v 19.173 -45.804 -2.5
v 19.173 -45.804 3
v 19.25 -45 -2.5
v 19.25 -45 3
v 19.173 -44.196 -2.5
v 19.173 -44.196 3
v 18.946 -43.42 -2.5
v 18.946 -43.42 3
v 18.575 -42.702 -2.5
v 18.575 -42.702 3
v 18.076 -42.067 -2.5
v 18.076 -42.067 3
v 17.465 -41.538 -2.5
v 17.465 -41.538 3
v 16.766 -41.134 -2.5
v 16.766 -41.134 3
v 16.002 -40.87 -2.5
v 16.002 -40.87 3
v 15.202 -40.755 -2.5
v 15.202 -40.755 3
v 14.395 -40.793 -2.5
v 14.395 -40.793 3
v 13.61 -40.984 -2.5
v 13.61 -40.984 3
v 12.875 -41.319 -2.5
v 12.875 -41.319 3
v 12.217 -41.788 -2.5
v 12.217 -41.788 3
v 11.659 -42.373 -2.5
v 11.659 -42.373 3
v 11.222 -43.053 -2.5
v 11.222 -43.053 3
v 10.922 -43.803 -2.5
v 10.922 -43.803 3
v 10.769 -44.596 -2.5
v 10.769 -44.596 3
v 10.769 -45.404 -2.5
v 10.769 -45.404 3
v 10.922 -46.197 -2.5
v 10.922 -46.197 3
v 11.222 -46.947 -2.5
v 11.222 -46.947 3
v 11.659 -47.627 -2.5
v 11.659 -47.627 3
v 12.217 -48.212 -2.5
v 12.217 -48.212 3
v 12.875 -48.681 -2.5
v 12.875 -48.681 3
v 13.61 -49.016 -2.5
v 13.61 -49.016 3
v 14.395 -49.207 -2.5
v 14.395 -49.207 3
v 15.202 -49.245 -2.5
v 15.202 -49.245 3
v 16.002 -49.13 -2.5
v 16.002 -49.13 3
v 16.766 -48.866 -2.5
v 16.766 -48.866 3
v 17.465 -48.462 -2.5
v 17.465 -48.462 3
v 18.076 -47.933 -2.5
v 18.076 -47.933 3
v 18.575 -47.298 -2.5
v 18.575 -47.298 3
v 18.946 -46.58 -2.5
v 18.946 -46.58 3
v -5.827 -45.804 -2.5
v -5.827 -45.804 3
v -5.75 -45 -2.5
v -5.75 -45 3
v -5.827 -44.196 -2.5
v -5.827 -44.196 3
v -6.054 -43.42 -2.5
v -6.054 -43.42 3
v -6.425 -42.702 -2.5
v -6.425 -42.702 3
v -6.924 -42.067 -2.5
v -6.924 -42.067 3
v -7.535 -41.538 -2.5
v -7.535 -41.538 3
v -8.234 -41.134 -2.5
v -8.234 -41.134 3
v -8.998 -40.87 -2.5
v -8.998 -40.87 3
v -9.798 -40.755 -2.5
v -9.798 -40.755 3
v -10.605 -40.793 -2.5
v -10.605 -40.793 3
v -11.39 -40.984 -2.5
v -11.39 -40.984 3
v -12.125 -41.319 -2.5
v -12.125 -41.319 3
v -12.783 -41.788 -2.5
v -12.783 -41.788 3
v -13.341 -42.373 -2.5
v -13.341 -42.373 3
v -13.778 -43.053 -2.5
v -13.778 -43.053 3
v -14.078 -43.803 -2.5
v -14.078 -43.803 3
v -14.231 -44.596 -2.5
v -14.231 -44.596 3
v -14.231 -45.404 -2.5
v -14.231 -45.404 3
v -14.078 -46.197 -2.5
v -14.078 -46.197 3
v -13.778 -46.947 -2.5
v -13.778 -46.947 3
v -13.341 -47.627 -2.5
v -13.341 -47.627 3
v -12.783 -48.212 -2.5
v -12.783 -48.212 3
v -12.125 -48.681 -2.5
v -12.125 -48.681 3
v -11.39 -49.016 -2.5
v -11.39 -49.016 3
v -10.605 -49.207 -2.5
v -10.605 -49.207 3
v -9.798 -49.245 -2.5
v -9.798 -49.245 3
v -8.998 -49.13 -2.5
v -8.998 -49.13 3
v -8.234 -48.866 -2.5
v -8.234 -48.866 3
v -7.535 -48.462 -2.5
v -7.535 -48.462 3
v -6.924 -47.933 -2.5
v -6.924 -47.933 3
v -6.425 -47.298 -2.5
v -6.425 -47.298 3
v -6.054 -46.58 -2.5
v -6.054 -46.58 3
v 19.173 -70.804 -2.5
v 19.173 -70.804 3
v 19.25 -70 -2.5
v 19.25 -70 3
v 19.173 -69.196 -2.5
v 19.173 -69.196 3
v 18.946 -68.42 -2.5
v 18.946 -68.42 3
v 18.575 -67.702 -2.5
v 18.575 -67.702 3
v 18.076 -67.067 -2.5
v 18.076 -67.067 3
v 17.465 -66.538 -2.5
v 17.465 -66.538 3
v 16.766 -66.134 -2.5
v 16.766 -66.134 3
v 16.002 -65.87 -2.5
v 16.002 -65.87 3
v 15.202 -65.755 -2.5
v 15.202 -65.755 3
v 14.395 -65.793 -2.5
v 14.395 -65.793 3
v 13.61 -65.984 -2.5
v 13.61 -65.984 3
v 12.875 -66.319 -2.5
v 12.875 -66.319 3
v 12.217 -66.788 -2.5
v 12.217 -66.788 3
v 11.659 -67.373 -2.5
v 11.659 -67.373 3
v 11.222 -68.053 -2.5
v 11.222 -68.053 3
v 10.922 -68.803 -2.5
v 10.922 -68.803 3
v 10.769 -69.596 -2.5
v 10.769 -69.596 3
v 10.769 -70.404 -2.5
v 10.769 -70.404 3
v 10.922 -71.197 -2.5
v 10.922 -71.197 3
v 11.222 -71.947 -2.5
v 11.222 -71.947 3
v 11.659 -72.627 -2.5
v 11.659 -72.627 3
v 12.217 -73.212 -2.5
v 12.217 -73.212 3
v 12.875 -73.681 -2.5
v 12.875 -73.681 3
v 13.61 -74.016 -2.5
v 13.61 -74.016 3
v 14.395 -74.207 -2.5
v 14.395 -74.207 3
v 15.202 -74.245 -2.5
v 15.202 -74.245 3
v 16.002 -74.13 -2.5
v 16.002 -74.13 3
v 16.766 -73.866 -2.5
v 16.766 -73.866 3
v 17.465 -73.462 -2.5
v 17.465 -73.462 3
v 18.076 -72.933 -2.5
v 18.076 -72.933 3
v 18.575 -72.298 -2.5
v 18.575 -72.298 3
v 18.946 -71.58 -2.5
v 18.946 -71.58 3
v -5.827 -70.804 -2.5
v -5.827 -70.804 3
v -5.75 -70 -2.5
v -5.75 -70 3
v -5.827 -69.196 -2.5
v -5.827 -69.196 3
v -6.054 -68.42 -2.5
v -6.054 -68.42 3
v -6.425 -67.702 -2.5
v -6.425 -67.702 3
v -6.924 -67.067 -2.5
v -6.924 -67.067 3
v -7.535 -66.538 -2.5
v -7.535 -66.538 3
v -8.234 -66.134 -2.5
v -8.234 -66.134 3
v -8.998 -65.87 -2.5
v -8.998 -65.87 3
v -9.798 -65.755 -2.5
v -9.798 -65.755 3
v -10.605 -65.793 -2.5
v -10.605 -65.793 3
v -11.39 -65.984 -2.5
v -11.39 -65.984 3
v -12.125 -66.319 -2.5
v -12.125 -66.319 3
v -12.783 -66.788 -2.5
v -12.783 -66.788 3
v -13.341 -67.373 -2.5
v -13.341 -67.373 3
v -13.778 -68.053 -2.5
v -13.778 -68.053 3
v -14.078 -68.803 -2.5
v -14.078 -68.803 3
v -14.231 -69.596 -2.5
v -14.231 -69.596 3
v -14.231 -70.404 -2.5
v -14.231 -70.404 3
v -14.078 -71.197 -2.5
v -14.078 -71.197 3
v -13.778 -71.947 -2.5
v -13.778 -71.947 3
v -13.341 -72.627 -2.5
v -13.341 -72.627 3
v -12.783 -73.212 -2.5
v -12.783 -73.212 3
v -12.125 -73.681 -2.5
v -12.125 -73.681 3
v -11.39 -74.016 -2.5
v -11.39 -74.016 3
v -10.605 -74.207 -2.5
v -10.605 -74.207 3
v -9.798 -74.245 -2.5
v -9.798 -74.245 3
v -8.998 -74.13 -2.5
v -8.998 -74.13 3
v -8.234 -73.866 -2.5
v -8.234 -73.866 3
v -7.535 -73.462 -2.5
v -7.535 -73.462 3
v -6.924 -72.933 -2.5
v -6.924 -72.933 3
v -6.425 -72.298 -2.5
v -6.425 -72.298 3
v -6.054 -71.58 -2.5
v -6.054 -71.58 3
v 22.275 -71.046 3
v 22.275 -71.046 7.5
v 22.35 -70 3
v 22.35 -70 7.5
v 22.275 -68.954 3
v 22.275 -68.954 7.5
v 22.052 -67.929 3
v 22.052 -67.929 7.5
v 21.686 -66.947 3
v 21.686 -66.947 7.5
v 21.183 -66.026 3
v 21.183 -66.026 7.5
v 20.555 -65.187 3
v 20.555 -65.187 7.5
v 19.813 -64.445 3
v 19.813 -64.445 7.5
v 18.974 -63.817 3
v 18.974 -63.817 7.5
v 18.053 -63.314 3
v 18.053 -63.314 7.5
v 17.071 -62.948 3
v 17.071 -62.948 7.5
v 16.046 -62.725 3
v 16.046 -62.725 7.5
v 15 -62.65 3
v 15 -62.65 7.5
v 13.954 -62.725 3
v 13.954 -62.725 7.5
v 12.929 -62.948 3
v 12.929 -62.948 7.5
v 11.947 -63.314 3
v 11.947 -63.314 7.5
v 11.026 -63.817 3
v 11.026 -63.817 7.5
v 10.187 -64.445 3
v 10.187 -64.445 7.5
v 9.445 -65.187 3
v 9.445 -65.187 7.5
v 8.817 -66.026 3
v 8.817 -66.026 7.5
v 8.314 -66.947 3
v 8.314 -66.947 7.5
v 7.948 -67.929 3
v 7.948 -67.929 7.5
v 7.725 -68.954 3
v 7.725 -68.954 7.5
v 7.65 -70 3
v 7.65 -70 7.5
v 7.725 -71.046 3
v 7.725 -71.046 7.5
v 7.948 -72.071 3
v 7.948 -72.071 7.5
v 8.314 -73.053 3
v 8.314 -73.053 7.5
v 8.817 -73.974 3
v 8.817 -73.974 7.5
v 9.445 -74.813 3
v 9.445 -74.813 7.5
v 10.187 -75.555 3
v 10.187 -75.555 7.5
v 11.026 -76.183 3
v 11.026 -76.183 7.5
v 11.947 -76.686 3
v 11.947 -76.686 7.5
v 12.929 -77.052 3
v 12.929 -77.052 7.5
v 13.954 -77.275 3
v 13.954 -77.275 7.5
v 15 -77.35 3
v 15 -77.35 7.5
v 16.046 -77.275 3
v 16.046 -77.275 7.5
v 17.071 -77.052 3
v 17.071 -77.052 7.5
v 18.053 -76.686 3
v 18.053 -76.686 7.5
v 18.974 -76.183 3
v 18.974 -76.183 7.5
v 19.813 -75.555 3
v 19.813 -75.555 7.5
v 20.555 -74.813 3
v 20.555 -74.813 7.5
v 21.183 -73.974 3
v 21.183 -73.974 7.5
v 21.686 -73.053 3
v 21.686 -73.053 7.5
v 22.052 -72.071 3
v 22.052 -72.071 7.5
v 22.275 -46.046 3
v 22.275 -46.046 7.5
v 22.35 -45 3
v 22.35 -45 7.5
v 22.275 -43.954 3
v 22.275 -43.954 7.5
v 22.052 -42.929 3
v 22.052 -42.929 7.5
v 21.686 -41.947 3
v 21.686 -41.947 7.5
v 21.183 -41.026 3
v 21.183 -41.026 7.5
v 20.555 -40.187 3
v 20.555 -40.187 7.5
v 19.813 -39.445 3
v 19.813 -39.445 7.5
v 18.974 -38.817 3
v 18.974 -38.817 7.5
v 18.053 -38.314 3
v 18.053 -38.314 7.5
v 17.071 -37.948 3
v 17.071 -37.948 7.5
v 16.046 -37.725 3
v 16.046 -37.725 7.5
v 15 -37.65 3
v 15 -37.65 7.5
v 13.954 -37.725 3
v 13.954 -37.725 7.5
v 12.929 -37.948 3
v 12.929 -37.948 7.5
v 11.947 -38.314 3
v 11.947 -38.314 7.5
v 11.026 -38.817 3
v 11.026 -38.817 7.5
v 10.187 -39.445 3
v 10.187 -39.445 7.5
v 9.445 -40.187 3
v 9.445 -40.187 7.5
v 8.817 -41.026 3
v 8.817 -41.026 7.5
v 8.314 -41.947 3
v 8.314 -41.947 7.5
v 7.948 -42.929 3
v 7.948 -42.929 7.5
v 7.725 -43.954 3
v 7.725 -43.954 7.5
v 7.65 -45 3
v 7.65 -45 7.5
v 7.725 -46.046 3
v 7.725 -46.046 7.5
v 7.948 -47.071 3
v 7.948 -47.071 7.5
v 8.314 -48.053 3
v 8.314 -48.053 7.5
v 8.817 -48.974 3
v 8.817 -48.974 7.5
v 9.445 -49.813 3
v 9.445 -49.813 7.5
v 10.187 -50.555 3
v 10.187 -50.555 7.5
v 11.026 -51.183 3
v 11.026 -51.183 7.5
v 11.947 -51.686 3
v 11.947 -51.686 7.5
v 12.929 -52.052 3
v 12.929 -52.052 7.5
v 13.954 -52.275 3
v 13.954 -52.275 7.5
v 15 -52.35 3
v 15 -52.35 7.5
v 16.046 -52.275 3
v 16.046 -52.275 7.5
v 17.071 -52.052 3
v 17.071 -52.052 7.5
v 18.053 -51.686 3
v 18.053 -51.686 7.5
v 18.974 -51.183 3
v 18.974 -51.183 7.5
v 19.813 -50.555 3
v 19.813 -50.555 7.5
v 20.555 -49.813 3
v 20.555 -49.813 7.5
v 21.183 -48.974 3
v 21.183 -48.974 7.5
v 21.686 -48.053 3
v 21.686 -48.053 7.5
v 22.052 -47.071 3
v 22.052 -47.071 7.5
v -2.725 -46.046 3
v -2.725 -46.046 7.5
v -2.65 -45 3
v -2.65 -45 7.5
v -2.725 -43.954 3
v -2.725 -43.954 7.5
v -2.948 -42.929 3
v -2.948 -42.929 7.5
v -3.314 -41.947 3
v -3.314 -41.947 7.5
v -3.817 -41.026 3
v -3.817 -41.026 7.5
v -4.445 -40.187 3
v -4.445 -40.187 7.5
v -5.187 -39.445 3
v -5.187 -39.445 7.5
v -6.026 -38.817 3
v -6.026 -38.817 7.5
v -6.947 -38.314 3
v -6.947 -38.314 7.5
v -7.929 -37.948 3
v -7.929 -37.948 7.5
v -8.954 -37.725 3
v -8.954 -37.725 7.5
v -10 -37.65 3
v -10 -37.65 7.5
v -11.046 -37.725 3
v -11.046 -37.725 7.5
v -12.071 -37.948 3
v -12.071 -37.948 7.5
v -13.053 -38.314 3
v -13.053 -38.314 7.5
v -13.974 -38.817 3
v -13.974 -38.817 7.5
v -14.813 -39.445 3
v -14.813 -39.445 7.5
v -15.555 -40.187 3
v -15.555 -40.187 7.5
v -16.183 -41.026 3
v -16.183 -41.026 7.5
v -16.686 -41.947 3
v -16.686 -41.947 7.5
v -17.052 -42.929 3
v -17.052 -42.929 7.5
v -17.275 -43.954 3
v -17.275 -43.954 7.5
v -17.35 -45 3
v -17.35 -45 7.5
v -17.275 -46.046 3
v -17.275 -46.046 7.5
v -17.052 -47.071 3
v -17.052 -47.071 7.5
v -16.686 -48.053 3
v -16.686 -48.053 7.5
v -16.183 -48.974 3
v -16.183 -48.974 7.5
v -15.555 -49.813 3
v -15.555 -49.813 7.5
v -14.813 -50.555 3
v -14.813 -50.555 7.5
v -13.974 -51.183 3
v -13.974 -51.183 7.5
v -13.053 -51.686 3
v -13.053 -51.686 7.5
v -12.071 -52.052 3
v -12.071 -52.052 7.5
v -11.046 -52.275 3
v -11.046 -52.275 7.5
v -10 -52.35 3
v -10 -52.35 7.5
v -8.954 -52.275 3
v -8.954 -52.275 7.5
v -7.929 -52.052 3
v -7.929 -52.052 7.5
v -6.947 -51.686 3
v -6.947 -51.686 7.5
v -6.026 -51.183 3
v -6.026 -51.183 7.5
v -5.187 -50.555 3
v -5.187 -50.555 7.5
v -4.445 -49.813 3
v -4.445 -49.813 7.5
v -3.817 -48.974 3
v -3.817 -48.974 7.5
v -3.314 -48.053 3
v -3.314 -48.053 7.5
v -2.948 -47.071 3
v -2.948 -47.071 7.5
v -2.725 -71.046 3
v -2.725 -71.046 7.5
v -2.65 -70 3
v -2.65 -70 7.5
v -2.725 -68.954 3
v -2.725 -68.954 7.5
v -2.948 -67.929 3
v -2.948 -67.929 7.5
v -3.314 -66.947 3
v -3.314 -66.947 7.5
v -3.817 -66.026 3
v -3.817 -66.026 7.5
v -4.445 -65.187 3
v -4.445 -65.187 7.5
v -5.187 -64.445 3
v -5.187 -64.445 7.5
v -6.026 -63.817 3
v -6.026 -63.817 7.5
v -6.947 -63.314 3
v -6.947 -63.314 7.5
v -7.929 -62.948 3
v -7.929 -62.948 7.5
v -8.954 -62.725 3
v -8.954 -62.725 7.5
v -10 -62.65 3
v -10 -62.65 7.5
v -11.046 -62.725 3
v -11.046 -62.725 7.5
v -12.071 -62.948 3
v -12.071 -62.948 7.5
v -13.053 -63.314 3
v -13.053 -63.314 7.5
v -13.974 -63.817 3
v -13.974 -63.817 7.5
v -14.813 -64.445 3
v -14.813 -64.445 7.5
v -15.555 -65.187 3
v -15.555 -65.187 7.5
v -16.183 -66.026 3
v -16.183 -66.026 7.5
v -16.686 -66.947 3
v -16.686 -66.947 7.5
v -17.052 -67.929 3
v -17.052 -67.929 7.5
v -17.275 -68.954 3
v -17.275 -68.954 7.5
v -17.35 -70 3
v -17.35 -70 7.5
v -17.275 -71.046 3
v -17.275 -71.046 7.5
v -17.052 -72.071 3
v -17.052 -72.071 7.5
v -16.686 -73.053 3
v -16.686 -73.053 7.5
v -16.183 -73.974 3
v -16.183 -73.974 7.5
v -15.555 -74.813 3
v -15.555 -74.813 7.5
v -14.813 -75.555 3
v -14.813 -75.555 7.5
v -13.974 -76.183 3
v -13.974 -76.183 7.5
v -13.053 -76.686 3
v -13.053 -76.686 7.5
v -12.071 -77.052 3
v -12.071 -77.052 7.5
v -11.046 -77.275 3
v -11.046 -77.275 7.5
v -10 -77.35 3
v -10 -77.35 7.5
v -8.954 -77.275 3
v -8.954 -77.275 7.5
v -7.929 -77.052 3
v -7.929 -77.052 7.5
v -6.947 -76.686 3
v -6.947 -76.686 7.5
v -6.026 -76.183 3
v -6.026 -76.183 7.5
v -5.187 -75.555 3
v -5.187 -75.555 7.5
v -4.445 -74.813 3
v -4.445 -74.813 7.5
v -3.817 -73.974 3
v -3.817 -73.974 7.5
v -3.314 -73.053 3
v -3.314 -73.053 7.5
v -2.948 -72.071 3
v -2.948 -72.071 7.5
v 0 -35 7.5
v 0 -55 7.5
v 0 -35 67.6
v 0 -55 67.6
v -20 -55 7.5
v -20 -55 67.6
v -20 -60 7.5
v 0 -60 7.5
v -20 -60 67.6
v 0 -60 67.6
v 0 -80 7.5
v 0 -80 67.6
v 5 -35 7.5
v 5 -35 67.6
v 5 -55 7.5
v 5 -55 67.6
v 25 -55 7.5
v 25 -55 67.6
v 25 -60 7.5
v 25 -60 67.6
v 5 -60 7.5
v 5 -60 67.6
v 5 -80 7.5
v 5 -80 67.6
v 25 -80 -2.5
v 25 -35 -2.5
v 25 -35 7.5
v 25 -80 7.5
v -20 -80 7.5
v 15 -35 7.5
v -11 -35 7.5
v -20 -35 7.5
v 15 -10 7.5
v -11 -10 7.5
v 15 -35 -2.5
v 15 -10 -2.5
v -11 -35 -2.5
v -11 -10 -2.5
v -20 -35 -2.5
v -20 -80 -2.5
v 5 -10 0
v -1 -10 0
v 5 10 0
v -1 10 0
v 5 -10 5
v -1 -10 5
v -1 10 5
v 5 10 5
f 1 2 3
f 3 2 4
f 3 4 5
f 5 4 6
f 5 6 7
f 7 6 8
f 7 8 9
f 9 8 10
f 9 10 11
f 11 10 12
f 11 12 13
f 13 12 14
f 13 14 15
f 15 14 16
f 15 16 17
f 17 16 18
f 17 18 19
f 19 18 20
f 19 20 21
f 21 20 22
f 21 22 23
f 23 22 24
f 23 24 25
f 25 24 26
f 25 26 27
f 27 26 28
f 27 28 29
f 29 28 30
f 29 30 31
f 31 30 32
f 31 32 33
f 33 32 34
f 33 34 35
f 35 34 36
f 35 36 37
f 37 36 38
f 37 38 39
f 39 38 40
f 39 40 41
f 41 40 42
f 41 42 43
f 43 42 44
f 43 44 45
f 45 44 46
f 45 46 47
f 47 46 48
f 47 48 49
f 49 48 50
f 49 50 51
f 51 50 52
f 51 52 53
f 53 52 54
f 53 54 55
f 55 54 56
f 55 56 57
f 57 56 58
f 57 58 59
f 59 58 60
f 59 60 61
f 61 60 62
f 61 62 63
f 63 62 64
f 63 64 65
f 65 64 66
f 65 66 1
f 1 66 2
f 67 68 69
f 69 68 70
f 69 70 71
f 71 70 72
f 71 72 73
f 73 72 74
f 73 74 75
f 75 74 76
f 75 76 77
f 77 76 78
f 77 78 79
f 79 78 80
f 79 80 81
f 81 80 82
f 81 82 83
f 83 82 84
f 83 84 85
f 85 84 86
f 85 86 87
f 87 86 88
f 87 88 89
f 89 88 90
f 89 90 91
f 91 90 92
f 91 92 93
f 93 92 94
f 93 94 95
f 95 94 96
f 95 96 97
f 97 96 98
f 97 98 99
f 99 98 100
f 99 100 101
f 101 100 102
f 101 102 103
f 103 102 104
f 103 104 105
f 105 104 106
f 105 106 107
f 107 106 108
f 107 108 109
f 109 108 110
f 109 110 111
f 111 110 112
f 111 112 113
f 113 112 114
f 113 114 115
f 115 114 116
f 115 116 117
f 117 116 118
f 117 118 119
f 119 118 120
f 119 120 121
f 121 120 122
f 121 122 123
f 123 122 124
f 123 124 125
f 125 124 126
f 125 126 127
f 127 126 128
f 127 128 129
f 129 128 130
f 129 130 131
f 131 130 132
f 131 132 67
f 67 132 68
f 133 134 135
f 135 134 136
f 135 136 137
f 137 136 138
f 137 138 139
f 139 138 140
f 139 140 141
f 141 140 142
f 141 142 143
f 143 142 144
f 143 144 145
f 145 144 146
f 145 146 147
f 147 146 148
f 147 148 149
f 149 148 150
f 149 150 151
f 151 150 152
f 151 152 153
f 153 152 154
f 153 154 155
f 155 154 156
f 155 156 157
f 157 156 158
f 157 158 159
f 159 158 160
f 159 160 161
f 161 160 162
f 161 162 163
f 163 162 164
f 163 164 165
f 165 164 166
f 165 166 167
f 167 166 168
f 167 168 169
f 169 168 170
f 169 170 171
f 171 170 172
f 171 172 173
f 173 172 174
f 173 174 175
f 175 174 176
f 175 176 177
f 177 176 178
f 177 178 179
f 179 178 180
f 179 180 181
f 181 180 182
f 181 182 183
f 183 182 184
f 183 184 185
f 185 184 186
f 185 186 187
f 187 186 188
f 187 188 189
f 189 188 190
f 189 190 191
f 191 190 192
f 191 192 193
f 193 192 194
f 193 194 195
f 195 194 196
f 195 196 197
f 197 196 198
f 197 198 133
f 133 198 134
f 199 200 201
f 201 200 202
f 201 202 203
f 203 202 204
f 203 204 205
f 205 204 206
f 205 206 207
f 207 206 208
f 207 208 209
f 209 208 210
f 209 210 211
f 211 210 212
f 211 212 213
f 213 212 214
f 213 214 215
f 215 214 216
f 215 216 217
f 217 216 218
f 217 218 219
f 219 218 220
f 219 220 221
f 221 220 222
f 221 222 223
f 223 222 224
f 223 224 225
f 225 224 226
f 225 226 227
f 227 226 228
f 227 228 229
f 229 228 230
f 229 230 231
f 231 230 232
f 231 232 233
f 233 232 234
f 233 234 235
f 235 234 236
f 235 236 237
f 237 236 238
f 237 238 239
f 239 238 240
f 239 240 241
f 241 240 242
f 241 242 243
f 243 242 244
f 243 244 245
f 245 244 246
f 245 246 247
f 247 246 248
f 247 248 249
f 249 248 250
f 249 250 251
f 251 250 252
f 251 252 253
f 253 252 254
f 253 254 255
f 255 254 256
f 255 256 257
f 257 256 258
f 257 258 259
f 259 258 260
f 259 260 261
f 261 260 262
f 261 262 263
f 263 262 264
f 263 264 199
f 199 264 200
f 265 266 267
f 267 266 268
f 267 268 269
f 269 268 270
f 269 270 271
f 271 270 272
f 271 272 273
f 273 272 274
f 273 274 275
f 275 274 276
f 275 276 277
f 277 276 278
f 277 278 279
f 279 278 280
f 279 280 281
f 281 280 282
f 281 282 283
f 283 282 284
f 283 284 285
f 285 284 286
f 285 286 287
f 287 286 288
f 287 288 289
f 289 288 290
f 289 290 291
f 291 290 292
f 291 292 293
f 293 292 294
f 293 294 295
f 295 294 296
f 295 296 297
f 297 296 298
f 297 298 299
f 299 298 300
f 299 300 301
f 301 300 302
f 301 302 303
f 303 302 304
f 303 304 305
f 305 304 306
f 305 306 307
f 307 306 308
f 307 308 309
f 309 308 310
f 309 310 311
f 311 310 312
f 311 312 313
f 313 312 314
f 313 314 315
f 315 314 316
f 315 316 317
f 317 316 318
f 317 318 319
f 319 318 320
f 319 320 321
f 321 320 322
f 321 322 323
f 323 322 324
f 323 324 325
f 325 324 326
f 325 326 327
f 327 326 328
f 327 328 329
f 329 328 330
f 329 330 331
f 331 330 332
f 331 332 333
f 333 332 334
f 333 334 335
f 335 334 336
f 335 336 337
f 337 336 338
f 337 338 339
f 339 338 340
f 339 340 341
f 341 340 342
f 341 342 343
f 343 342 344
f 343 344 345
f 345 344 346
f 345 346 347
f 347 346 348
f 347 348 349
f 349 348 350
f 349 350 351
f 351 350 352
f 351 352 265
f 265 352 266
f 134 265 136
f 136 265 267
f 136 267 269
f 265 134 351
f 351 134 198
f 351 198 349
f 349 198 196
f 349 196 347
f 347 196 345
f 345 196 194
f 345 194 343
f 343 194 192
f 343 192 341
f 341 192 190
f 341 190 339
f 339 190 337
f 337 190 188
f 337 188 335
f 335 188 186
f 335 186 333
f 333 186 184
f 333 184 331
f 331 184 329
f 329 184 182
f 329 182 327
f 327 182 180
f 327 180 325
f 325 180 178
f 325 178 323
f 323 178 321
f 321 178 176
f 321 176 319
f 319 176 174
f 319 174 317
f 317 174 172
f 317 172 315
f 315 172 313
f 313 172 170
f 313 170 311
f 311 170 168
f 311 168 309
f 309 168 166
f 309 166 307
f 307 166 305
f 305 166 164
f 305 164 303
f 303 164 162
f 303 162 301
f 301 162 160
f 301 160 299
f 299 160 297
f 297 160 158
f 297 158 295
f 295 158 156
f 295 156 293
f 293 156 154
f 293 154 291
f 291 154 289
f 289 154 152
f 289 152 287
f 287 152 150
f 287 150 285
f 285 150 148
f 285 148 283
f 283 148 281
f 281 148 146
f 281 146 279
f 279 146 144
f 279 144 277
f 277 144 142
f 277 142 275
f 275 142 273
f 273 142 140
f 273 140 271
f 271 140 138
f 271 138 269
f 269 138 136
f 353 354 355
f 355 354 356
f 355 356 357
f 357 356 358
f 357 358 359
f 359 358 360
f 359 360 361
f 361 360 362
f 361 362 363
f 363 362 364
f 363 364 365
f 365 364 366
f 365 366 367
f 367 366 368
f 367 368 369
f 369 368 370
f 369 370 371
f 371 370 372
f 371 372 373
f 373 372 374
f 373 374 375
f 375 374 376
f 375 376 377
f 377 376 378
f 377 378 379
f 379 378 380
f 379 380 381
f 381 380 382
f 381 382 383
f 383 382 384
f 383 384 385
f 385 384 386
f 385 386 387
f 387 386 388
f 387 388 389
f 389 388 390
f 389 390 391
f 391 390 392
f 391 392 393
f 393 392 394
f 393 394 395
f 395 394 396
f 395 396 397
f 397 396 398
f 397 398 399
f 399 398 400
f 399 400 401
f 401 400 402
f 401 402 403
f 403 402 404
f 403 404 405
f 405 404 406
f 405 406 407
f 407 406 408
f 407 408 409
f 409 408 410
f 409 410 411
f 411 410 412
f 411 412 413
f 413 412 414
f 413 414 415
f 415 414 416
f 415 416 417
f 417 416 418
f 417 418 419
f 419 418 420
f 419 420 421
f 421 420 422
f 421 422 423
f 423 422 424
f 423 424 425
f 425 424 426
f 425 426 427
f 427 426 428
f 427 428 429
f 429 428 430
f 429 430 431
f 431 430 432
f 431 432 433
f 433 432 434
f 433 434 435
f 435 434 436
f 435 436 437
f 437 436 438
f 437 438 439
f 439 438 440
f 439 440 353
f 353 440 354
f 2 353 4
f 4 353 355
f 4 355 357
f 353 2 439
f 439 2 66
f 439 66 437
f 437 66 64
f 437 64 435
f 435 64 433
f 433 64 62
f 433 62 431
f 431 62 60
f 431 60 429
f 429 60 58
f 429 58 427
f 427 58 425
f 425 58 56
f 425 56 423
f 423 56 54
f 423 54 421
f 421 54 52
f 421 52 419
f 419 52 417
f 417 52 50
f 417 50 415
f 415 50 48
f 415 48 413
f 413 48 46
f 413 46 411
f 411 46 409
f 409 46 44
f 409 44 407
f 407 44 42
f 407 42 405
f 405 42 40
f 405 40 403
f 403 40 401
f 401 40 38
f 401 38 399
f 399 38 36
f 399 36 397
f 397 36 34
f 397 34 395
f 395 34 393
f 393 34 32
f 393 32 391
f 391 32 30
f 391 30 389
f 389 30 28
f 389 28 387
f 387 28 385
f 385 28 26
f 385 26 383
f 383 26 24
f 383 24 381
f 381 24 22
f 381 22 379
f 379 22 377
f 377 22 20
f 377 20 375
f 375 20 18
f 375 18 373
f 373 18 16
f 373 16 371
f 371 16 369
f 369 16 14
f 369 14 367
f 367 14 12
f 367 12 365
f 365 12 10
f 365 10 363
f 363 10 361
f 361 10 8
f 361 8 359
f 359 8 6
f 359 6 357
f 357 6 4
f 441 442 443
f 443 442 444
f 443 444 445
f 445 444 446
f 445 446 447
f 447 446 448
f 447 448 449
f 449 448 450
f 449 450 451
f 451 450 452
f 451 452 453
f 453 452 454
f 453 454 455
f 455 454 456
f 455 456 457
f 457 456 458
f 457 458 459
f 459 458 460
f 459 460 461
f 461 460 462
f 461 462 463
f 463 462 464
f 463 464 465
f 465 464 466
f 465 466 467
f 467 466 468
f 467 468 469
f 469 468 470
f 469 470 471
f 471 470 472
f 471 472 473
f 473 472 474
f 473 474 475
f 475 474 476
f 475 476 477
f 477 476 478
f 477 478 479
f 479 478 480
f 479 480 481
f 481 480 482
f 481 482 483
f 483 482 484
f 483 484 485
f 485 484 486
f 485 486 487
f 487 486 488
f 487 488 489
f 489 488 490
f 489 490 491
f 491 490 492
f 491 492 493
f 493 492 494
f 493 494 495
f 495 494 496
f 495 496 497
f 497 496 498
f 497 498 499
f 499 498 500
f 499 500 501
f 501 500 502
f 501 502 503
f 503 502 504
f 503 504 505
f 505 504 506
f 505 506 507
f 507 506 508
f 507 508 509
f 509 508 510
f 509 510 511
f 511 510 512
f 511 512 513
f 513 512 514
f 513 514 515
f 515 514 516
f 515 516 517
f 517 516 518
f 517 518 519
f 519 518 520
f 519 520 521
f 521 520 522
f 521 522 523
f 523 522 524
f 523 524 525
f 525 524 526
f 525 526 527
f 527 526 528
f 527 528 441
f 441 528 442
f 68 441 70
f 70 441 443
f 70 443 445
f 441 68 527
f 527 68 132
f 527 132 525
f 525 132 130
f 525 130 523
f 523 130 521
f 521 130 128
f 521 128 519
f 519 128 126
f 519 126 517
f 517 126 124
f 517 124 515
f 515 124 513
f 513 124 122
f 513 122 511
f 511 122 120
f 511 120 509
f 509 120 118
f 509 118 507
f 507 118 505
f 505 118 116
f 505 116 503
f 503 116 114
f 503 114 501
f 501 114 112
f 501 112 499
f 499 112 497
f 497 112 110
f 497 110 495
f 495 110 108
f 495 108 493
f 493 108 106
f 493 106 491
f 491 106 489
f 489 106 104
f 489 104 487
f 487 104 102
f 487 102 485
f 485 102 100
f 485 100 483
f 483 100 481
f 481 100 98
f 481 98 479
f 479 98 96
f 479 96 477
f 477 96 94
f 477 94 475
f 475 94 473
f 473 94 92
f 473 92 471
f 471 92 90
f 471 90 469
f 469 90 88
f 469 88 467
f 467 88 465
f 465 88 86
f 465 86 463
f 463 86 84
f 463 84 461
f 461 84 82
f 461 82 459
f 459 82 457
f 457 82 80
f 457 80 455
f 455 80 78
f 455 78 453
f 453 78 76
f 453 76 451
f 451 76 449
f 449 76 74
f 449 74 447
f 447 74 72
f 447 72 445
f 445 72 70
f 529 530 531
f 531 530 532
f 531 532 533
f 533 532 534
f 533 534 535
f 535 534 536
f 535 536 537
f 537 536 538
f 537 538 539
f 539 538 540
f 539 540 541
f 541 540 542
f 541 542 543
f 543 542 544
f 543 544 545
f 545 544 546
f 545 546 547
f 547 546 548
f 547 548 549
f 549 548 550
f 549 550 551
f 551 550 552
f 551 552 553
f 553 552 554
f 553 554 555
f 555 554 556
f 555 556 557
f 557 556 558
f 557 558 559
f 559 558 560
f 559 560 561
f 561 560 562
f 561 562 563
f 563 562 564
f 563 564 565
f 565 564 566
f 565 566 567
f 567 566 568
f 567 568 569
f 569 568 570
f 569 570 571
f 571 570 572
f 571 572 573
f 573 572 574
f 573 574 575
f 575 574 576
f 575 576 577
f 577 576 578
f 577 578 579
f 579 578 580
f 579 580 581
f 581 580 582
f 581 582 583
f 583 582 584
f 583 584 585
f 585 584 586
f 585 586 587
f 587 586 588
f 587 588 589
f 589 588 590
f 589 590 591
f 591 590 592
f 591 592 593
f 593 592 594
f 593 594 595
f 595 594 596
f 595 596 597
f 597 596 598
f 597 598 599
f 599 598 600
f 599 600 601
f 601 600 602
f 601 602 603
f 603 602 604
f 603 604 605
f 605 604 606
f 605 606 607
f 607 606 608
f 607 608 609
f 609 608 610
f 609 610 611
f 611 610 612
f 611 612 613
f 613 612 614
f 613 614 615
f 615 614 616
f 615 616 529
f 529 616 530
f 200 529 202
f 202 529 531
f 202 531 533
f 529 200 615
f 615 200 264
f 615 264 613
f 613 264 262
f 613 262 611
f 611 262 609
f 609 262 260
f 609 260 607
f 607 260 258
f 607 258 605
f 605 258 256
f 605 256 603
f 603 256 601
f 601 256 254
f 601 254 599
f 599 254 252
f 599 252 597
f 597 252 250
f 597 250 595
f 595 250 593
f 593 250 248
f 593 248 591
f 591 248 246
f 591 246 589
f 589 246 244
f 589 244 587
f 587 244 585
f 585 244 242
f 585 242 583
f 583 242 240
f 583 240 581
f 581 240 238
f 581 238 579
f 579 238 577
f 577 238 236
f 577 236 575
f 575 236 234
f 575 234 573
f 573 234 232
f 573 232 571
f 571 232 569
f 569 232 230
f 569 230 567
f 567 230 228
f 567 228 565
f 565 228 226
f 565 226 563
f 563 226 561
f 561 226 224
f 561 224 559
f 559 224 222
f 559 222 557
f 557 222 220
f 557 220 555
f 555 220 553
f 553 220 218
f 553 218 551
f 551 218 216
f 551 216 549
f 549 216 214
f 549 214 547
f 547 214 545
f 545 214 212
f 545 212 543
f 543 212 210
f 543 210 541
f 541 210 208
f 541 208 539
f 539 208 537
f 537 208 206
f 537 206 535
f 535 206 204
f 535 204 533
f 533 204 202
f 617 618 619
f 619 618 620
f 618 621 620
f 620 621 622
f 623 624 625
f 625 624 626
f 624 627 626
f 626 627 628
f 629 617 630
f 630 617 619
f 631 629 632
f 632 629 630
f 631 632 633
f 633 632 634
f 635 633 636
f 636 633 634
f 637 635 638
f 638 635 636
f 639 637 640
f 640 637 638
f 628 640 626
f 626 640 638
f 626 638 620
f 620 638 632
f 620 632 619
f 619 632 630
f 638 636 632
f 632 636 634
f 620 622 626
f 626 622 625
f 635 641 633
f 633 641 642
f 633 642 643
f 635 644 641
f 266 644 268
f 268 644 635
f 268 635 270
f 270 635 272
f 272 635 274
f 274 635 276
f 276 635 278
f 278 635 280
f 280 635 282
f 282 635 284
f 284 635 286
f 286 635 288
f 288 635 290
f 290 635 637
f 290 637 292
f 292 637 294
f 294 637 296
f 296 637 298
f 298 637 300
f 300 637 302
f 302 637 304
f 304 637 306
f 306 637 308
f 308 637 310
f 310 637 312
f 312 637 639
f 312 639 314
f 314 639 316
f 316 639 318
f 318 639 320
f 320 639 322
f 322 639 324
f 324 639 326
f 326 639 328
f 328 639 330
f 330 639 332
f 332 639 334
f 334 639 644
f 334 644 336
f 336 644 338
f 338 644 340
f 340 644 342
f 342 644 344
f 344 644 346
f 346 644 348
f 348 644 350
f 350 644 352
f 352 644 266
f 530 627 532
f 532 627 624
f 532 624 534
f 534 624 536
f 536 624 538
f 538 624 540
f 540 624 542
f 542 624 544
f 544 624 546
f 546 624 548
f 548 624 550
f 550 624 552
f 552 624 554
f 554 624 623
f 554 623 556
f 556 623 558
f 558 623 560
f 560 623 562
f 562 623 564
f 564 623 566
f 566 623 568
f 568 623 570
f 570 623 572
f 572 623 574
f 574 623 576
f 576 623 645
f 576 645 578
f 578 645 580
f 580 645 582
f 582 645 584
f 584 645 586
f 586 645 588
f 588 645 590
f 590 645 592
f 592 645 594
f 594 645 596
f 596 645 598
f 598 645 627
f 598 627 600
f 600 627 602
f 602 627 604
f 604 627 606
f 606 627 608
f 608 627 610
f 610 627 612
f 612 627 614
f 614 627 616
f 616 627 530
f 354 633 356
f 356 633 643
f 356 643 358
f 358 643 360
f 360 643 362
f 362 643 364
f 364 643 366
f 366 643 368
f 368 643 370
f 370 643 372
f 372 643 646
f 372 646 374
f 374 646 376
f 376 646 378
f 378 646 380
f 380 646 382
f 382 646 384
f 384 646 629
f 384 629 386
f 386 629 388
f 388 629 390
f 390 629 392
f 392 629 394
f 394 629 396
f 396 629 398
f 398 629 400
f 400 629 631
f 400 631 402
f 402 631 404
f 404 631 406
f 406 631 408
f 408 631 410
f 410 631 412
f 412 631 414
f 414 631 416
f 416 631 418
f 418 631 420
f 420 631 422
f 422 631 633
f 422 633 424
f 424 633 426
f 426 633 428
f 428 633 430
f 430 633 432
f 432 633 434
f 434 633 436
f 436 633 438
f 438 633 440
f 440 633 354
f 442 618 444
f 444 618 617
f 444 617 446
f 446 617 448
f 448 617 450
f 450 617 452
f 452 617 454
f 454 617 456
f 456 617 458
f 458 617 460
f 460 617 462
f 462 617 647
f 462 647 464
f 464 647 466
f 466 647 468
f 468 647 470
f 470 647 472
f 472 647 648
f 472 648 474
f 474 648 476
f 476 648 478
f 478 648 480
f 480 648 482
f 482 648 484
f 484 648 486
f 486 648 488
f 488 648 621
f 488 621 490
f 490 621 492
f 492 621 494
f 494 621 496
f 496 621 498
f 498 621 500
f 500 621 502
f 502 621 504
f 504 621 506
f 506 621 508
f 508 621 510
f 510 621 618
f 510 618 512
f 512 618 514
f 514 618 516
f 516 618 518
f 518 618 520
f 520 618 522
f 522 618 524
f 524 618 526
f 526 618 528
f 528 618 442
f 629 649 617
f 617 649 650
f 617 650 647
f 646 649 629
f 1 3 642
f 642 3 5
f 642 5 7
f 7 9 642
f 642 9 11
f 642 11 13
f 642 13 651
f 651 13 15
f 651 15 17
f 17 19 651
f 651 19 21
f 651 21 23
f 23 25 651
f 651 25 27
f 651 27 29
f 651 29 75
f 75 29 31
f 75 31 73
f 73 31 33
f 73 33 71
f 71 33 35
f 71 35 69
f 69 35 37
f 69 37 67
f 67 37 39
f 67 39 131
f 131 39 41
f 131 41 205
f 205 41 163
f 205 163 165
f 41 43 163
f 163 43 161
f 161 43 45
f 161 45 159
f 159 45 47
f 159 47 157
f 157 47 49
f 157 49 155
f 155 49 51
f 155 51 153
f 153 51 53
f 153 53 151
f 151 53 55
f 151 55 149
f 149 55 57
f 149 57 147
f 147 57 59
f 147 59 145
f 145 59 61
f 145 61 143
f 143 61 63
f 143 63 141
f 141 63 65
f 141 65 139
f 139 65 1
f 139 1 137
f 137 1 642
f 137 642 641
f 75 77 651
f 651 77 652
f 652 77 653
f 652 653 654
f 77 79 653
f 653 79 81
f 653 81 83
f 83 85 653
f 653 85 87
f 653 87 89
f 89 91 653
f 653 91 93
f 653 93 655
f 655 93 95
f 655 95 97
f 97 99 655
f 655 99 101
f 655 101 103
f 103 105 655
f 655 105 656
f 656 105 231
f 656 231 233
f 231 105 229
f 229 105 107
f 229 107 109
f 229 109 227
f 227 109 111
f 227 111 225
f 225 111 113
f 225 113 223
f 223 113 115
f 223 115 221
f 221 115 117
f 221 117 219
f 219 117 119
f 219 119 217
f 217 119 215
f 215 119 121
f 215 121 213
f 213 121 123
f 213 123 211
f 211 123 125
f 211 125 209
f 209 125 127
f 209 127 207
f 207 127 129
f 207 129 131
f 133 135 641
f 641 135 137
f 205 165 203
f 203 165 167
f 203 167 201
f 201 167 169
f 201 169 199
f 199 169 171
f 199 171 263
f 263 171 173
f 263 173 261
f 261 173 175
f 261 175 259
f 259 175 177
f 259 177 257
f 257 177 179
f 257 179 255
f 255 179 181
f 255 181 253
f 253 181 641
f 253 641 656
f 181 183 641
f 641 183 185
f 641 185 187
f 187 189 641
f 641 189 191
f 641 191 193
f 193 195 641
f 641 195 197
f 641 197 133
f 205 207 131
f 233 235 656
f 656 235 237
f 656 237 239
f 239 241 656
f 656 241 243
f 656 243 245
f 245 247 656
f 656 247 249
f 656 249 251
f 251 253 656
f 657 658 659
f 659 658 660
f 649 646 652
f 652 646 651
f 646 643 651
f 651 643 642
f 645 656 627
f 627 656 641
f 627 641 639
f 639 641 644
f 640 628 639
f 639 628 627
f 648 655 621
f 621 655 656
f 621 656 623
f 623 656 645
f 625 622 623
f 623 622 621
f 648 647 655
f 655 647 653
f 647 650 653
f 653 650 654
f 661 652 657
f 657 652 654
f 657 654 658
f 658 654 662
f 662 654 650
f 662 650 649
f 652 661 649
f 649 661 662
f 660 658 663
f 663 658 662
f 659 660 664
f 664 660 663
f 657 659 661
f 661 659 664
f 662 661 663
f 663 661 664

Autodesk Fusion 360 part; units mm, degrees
sketch "Sketch1" plane through (0, 0, 0) normal (0, 0, 1) x (1, 0, 0)
  line L0 (-1, 10) -> (5, 10)
  line L1 (5, 10) -> (5, -10)
  line L2 (5, -10) -> (-1, -10)
  line L3 (-1, -10) -> (-1, 10)
  line L4 (-1, -10) -> (-11, -10)
  line L5 (5, -10) -> (15, -10)
  line L6 (-11, -10) -> (-11, -35)
  line L7 (15, -10) -> (15, -35)
  line L8 (-11, -35) -> (-20, -35)
  line L9 (-20, -35) -> (-20, -80)
  line L10 (15, -35) -> (25, -35)
  line L11 (-20, -80) -> (25, -80)
  line L12 (25, -80) -> (25, -35)
  dimension "d1" = 20
  dimension "d2" = 10
  dimension "d3" = 6
  dimension "d4" = 10
  dimension "d5" = 45
extrude "Extrude1" add sketch "Sketch1" along normal blind 5 contours L0 L1 L2 L3
sketch "Sketch2" plane through (0, 0, 5) normal (0, 0, 1) x (-1, 0, 0)
  line L0 (-5, 10) -> (-5, -10)
  line L1 (-5, -10) -> (1, -10)
  line L2 (1, -10) -> (1, 10)
  line L3 (-25, 55) -> (-25, 60)
  line L4 (-25, 60) -> (20, 60)
  line L5 (20, 55) -> (-25, 55)
  line L6 (-2.5, 35) -> (-5, 35)
  line L7 (-5, 35) -> (-5, 80)
  line L8 (-2.5, 35) -> (0, 35)
  line L9 (0, 35) -> (0, 80)
  line L10 (1, 10) -> (-5, 10)
  line L11 (-5, 80) -> (-2.5, 80)
  line L12 (0, 80) -> (-2.5, 80)
  line L13 (20, 60) -> (19.7373, 60)
  line L14 (20, 55) -> (20, 57.5)
  line L15 (20, 60) -> (20, 57.5)
extrude "Extrude2" add sketch "Sketch1" along normal blind 7.5 contours L2 L4 L5 L6 L7 L8 L9 L10 L11 L12
extrude "Extrude3" add sketch "Sketch1" against normal blind 2.5 contours L2 L4 L5 L6 L7 L8 L9 L10 L11 L12
extrude "Extrude4" add sketch "Sketch2" along normal blind 62.6 contours L3 L4 L5 L7 | L4 L5 L7 L9 | L5 L6 L7 L8 L9 | L4 L7 L9 L11 L12 | L4 L5 L9 L13 L14 L15
sketch "Sketch3" plane through (0, 0, 7.5) normal (0, 0, 1) x (-1, 0, 0)
  line L0 (20, 55) -> (0, 55)
  line L1 (0, 55) -> (0, 35)
  line L2 (0, 35) -> (-5, 35)
  line L3 (-5, 35) -> (-5, 55)
  line L4 (-5, 55) -> (-25, 55)
  line L5 (-25, 55) -> (-25, 35)
  line L6 (-25, 35) -> (-15, 35)
  line L7 (-15, 35) -> (-15, 10)
  line L8 (-15, 10) -> (11, 10)
  line L9 (11, 10) -> (11, 35)
  line L10 (11, 35) -> (20, 35)
  line L11 (20, 35) -> (20, 55)
  circle A0 centre (-15, 45) radius 7.35
  circle A1 centre (-15, 70) radius 7.35
  circle A2 centre (10, 70) radius 7.35
  circle A3 centre (10, 45) radius 7.35
  line L12 (0, 80) -> (0, 60)
  line L13 (0, 60) -> (20, 60)
  line L14 (-5, 60) -> (-5, 80)
  line L15 (-25, 60) -> (-5, 60)
  dimension "d15" = 10
  dimension "d16" = 10
  dimension "d17" = 10
  dimension "d18" = 10
  dimension "d19" = 10
  dimension "d20" = 10
  dimension "d21" = 10
  dimension "d22" = 10
  dimension "d23" = 14.7
  dimension "d24" = 14.7
  dimension "d25" = 14.7
  dimension "d26" = 14.7
extrude "Extrude5" cut sketch "Sketch3" against normal blind 4.5 contours A0 | A1 | A2 | A3
sketch "Sketch4" plane through (0, 0, 3) normal (0, 0, 1) x (-1, 0, 0)
  circle A0 centre (-15, 45) radius 7.35
  circle A1 centre (-15, 70) radius 4.25
  circle A2 centre (10, 70) radius 4.25
  circle A3 centre (10, 45) radius 4.25
  circle A4 centre (-15, 45) radius 4.25
  line L0 (0, 60) -> (20, 60)
  dimension "d29" = 10
  dimension "d30" = 8.5
  dimension "d31" = 8.5
  dimension "d32" = 8.5
  dimension "d33" = 8.5
extrude "Extrude6" cut sketch "Sketch4" against normal blind 6 contours A1 | A2 | A3 | A4
